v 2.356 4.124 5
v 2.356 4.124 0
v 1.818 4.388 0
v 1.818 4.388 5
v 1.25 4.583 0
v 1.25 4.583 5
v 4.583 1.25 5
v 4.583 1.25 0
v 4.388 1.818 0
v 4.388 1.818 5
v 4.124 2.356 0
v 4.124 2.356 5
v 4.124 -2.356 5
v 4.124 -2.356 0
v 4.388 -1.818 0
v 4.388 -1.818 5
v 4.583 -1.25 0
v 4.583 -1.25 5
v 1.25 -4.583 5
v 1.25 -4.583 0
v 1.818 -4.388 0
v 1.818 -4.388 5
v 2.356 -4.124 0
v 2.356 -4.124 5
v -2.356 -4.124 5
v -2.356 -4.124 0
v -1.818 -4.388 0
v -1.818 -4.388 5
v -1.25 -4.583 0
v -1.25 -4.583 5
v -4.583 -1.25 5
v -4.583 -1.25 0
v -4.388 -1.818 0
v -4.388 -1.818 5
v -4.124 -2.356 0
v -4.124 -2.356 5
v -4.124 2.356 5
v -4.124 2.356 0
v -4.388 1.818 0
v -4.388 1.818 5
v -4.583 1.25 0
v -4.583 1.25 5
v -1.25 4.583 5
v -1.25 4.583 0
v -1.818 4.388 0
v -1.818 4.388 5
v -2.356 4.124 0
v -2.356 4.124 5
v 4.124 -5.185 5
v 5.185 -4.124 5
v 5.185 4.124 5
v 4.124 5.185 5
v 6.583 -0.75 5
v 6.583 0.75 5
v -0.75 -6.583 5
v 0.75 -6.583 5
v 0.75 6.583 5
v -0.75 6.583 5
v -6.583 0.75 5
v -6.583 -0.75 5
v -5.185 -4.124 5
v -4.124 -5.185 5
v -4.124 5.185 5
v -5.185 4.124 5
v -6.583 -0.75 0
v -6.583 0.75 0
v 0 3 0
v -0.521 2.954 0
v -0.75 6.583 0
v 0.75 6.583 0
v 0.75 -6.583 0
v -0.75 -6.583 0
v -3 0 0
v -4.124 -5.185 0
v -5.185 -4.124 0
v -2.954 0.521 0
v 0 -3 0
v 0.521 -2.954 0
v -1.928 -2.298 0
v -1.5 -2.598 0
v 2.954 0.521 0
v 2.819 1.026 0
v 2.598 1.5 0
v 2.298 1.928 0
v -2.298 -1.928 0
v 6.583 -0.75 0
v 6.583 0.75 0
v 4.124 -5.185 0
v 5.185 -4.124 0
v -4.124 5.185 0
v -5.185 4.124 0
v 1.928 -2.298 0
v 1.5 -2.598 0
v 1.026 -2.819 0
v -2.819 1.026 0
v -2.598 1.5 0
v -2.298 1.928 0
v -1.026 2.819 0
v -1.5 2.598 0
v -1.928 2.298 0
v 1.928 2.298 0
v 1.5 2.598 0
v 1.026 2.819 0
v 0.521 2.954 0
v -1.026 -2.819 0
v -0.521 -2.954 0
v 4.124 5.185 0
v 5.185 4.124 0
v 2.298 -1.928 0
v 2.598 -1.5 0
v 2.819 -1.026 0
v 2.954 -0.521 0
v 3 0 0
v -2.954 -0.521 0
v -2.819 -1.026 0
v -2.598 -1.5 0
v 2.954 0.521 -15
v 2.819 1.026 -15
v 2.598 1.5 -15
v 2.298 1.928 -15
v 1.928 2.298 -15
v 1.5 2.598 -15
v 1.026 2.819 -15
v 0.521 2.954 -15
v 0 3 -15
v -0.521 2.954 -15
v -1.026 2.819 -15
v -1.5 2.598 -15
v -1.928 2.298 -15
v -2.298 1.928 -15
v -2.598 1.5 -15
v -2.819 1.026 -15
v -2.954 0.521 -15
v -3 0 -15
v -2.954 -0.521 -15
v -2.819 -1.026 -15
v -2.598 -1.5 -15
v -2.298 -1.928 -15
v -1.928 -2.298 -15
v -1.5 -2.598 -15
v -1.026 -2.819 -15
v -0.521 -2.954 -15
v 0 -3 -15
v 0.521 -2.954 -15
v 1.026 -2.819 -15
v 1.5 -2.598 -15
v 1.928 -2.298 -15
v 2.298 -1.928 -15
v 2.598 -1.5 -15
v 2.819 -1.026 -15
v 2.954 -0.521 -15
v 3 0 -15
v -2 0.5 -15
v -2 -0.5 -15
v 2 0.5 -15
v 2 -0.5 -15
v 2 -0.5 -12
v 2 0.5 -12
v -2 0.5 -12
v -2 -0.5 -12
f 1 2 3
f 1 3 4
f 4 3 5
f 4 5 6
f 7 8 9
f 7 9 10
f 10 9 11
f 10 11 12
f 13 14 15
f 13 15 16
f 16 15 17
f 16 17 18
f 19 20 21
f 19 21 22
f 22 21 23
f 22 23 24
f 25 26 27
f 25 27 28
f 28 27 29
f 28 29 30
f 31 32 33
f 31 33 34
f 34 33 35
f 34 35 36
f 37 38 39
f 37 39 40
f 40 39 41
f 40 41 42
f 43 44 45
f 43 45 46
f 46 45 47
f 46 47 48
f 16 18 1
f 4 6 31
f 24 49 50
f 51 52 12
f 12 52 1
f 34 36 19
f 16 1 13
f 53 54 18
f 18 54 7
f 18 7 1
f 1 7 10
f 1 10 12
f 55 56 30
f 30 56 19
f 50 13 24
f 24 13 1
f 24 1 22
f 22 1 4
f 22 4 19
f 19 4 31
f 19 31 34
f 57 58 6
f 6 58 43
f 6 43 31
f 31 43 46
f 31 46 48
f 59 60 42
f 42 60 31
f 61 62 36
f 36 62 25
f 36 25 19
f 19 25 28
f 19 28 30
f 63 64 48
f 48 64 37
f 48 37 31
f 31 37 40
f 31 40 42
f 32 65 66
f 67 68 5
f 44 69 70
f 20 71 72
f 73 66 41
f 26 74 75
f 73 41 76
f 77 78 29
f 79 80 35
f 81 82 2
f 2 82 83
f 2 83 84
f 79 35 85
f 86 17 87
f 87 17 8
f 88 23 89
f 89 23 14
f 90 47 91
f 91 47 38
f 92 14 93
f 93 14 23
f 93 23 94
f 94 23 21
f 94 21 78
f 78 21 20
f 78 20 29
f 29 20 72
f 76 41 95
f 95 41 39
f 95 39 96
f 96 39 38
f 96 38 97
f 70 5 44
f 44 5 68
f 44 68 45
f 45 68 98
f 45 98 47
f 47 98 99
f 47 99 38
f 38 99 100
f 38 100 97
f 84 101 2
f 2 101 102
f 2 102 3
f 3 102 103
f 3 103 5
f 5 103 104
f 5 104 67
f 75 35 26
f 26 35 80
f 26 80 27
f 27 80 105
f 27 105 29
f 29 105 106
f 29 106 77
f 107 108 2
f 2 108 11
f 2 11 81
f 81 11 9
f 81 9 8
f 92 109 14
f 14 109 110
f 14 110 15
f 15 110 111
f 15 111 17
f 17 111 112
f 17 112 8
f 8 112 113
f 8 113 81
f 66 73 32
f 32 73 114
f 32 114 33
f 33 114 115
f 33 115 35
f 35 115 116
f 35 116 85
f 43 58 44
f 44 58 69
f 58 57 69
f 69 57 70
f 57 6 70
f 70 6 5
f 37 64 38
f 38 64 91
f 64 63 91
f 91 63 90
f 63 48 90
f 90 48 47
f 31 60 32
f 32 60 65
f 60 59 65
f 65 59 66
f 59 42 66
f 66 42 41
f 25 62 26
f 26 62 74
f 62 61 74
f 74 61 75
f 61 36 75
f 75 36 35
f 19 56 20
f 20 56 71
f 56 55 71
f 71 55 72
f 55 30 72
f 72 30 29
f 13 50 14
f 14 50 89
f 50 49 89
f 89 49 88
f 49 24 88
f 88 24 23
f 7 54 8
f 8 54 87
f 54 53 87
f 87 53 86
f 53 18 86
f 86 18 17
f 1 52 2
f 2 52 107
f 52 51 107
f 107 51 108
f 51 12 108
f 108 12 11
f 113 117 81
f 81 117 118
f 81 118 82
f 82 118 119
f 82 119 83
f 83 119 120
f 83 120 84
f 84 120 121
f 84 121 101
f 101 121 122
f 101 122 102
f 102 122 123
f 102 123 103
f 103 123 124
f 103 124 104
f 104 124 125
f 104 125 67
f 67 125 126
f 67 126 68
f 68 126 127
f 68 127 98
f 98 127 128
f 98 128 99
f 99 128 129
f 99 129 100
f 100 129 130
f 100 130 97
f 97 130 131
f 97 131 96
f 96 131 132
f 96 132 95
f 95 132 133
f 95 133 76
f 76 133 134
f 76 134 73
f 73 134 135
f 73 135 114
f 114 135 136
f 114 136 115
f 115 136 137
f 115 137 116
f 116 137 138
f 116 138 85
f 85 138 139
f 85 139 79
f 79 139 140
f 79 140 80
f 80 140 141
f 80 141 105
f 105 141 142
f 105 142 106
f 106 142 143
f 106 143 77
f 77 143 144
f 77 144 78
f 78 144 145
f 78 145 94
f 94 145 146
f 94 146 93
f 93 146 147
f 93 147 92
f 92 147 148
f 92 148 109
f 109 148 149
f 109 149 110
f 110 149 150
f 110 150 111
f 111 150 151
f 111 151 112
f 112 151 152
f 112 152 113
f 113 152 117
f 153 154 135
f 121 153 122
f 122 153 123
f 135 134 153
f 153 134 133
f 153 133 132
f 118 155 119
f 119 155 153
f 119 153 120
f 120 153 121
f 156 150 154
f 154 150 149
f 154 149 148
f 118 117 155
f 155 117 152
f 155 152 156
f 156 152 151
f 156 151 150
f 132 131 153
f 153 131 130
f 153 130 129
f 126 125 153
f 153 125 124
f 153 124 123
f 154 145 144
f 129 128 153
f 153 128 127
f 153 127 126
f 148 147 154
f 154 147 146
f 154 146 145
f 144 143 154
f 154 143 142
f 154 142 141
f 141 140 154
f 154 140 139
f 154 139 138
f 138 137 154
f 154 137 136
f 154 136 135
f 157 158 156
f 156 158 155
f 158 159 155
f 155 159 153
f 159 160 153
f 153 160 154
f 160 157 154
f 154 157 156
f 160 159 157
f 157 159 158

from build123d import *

# Parameters (mm, degrees)
ESQUISSE1_R                  = 4.75
MAIN_EXTRUSION_DEPTH         = 5
GEAR_ELEMENT_DEPTH           = 5
R_P_TITION_CIRCULAIRE1_COUNT = 8
ESQUISSE3_R                  = 3
MAIN_AXE_DEPTH               = 15
ESQUISSE4_W                  = 4
ESQUISSE4_H                  = 1
AXE_TRAIT_DEPTH              = 3


with BuildPart() as part:
    # Esquisse1 → Main Extrusion (new body)
    with BuildSketch(Plane.XY):
        Circle(ESQUISSE1_R)
    extrude(amount=MAIN_EXTRUSION_DEPTH)

    # Esquisse2 → Gear Element (add)
    with BuildSketch(Plane.XY.offset(5)):
        Polygon((-1.25, 4.582575695), (1.25, 4.582575695), (0.75, 6.582575695), (-0.75, 6.582575695), align=None)
    gear_element = extrude(amount=-GEAR_ELEMENT_DEPTH)

    # Répétition circulaire1: Gear Element ×8 about axis
    r_p_tition_circulaire1_axis = Axis((0, 0, 0), (0, 0, 1))
    for i in range(1, R_P_TITION_CIRCULAIRE1_COUNT):
        add(gear_element.rotate(r_p_tition_circulaire1_axis, i * 360 / R_P_TITION_CIRCULAIRE1_COUNT))

    # Esquisse3 → Main Axe (add)
    with BuildSketch(Plane(origin=(0, 0, 0), x_dir=(-1, 0, 0), z_dir=(0, 0, -1))):
        Circle(ESQUISSE3_R)
    extrude(amount=MAIN_AXE_DEPTH)

    # Esquisse4 → Axe Trait (cut)
    with BuildSketch(Plane(origin=(0, 0, -15), x_dir=(-1, 0, 0), z_dir=(0, 0, -1))):
        Rectangle(ESQUISSE4_W, ESQUISSE4_H)
    extrude(amount=-AXE_TRAIT_DEPTH, mode=Mode.SUBTRACT)


solid = part.part
